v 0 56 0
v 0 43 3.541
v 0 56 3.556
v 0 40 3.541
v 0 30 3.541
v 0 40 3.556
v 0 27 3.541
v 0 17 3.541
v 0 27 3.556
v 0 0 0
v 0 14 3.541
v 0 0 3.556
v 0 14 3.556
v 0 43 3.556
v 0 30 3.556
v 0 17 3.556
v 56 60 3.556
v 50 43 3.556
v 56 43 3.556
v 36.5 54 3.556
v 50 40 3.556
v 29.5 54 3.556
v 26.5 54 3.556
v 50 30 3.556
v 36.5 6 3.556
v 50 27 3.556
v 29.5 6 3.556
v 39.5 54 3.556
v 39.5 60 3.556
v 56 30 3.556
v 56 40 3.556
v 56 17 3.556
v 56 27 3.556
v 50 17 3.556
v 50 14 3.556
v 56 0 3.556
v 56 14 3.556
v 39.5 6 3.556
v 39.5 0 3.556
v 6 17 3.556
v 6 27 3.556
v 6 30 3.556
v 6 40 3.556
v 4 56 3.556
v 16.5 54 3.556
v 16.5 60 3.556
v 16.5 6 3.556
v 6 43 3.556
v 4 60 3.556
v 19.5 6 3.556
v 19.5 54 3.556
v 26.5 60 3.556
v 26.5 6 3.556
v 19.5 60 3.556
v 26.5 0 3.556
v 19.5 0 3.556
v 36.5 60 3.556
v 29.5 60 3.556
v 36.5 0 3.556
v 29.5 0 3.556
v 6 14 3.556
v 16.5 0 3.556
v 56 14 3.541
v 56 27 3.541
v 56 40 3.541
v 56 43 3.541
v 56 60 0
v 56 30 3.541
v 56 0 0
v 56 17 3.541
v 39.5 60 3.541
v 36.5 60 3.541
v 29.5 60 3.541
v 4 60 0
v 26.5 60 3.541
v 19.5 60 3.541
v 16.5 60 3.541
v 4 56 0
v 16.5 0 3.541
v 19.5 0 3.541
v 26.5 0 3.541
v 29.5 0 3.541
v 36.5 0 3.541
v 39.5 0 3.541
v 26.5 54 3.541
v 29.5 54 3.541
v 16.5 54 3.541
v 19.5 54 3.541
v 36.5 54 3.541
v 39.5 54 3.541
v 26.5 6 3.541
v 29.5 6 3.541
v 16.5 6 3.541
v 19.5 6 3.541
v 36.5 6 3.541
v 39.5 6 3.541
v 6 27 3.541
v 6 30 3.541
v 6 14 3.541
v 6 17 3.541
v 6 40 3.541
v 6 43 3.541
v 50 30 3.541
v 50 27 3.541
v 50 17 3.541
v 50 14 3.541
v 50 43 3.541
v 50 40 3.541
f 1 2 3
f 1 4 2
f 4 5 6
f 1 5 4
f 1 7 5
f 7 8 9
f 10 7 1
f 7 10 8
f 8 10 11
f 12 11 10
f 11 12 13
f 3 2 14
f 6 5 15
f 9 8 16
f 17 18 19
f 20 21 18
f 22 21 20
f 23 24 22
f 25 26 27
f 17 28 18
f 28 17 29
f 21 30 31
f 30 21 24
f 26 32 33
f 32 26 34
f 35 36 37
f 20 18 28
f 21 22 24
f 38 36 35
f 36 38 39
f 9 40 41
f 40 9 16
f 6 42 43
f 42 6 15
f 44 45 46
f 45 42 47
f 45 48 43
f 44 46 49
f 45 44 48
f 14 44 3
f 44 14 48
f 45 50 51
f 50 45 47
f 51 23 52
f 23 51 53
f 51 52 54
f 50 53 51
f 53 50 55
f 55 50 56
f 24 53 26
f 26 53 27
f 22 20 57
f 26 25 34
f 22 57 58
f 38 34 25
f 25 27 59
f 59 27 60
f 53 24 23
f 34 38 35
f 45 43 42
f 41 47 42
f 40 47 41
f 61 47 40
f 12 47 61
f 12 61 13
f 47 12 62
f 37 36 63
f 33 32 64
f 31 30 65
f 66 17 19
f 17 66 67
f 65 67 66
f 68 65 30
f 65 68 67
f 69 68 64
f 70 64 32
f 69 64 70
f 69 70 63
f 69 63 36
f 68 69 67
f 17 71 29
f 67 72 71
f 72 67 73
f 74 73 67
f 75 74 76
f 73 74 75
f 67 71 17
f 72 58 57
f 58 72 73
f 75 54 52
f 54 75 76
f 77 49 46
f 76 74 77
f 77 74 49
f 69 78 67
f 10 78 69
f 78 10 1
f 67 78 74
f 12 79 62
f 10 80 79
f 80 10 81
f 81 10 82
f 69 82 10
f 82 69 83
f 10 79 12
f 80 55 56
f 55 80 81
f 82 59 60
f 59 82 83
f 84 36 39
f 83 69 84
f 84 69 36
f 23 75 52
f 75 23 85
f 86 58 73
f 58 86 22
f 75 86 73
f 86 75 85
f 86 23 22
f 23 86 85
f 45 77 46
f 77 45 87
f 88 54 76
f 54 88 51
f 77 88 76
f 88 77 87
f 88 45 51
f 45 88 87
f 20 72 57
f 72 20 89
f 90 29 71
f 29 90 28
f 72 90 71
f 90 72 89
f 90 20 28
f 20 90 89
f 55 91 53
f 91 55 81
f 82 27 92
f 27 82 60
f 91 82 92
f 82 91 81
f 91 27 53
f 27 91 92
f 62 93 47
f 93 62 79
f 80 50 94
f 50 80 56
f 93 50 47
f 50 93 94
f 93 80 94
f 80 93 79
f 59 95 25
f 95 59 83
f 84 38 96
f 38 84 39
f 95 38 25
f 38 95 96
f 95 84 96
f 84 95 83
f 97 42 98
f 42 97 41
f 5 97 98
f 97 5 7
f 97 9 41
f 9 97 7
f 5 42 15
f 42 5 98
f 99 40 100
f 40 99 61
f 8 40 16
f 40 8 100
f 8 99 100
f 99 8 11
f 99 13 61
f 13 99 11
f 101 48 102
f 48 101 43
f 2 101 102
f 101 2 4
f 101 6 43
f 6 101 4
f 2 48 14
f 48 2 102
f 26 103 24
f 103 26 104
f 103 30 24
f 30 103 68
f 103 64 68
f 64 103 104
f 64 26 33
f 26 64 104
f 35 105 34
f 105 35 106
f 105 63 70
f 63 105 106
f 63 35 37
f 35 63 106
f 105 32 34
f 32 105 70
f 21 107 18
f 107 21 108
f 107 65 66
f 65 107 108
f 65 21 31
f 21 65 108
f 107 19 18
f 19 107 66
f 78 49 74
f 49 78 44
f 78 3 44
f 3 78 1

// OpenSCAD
//Parameters
  //Cube sizes to test
  zDepth = 0.015;
  //Stock and test piece definitions
  stockZ = 5.556;
  faceDepth = 2;      //Amount of stock to face
  stockX = 56;
  stockY = 60;
  //Spacing between depth tests
  spacing = 7; 
  testX = 3;
  testY = 6;

//uncomment to render
SurfaceRoughness();

//Module Definition
module SurfaceRoughness(){
  difference(){
    cube([stockX,stockY,stockZ-faceDepth], center=false);
    translate([(stockX/2)-(testX/2),stockY-testY,(stockZ-faceDepth-zDepth)]){
      cube([testX,testY,zDepth]);
    }
    translate([(stockX/2)-(testX/2)-7-testX,stockY-testY,(stockZ-faceDepth-zDepth)]){
      cube([testX,testY,zDepth]);
    }
    translate([(stockX/2)-(testX/2)+7+testX,stockY-testY,(stockZ-faceDepth-zDepth)]){
      cube([testX,testY,zDepth]);
    }
    translate([(stockX/2)-(testX/2),0,(stockZ-faceDepth-zDepth)]){
      cube([testX,testY,zDepth]);
    }
    translate([(stockX/2)-(testX/2)-7-testX,0,(stockZ-faceDepth-zDepth)]){
      cube([testX,testY,zDepth]);
    }
    translate([(stockX/2)-(testX/2)+7+testX,0,(stockZ-faceDepth-zDepth)]){
      cube([testX,testY,zDepth]);
    }
    translate([0,(stockY/2)-(testY/2),(stockZ-faceDepth-zDepth)]){
      cube([testY,testX,zDepth]);
    }
    translate([0,(stockY/2)-(testY/2)-7-testY,(stockZ-faceDepth-zDepth)]){
      cube([testY,testX,zDepth]);
    }
    translate([0,(stockY/2)-(testY/2)+7+testY,(stockZ-faceDepth-zDepth)]){
      cube([testY,testX,zDepth]);
    }
    translate([stockX-testY,(stockY/2)-(testY/2),(stockZ-faceDepth-zDepth)]){
      cube([testY,testX,zDepth]);
    }
    translate([stockX-testY,(stockY/2)-(testY/2)-7-testY,(stockZ-faceDepth-zDepth)]){
      cube([testY,testX,zDepth]);
    }
    translate([stockX-testY,(stockY/2)-(testY/2)+7+testY,(stockZ-faceDepth-zDepth)]){
      cube([testY,testX,zDepth]);
    }
    translate([0,stockY-4,0]){
      cube([4,4,stockZ]);
    }
  }
}
